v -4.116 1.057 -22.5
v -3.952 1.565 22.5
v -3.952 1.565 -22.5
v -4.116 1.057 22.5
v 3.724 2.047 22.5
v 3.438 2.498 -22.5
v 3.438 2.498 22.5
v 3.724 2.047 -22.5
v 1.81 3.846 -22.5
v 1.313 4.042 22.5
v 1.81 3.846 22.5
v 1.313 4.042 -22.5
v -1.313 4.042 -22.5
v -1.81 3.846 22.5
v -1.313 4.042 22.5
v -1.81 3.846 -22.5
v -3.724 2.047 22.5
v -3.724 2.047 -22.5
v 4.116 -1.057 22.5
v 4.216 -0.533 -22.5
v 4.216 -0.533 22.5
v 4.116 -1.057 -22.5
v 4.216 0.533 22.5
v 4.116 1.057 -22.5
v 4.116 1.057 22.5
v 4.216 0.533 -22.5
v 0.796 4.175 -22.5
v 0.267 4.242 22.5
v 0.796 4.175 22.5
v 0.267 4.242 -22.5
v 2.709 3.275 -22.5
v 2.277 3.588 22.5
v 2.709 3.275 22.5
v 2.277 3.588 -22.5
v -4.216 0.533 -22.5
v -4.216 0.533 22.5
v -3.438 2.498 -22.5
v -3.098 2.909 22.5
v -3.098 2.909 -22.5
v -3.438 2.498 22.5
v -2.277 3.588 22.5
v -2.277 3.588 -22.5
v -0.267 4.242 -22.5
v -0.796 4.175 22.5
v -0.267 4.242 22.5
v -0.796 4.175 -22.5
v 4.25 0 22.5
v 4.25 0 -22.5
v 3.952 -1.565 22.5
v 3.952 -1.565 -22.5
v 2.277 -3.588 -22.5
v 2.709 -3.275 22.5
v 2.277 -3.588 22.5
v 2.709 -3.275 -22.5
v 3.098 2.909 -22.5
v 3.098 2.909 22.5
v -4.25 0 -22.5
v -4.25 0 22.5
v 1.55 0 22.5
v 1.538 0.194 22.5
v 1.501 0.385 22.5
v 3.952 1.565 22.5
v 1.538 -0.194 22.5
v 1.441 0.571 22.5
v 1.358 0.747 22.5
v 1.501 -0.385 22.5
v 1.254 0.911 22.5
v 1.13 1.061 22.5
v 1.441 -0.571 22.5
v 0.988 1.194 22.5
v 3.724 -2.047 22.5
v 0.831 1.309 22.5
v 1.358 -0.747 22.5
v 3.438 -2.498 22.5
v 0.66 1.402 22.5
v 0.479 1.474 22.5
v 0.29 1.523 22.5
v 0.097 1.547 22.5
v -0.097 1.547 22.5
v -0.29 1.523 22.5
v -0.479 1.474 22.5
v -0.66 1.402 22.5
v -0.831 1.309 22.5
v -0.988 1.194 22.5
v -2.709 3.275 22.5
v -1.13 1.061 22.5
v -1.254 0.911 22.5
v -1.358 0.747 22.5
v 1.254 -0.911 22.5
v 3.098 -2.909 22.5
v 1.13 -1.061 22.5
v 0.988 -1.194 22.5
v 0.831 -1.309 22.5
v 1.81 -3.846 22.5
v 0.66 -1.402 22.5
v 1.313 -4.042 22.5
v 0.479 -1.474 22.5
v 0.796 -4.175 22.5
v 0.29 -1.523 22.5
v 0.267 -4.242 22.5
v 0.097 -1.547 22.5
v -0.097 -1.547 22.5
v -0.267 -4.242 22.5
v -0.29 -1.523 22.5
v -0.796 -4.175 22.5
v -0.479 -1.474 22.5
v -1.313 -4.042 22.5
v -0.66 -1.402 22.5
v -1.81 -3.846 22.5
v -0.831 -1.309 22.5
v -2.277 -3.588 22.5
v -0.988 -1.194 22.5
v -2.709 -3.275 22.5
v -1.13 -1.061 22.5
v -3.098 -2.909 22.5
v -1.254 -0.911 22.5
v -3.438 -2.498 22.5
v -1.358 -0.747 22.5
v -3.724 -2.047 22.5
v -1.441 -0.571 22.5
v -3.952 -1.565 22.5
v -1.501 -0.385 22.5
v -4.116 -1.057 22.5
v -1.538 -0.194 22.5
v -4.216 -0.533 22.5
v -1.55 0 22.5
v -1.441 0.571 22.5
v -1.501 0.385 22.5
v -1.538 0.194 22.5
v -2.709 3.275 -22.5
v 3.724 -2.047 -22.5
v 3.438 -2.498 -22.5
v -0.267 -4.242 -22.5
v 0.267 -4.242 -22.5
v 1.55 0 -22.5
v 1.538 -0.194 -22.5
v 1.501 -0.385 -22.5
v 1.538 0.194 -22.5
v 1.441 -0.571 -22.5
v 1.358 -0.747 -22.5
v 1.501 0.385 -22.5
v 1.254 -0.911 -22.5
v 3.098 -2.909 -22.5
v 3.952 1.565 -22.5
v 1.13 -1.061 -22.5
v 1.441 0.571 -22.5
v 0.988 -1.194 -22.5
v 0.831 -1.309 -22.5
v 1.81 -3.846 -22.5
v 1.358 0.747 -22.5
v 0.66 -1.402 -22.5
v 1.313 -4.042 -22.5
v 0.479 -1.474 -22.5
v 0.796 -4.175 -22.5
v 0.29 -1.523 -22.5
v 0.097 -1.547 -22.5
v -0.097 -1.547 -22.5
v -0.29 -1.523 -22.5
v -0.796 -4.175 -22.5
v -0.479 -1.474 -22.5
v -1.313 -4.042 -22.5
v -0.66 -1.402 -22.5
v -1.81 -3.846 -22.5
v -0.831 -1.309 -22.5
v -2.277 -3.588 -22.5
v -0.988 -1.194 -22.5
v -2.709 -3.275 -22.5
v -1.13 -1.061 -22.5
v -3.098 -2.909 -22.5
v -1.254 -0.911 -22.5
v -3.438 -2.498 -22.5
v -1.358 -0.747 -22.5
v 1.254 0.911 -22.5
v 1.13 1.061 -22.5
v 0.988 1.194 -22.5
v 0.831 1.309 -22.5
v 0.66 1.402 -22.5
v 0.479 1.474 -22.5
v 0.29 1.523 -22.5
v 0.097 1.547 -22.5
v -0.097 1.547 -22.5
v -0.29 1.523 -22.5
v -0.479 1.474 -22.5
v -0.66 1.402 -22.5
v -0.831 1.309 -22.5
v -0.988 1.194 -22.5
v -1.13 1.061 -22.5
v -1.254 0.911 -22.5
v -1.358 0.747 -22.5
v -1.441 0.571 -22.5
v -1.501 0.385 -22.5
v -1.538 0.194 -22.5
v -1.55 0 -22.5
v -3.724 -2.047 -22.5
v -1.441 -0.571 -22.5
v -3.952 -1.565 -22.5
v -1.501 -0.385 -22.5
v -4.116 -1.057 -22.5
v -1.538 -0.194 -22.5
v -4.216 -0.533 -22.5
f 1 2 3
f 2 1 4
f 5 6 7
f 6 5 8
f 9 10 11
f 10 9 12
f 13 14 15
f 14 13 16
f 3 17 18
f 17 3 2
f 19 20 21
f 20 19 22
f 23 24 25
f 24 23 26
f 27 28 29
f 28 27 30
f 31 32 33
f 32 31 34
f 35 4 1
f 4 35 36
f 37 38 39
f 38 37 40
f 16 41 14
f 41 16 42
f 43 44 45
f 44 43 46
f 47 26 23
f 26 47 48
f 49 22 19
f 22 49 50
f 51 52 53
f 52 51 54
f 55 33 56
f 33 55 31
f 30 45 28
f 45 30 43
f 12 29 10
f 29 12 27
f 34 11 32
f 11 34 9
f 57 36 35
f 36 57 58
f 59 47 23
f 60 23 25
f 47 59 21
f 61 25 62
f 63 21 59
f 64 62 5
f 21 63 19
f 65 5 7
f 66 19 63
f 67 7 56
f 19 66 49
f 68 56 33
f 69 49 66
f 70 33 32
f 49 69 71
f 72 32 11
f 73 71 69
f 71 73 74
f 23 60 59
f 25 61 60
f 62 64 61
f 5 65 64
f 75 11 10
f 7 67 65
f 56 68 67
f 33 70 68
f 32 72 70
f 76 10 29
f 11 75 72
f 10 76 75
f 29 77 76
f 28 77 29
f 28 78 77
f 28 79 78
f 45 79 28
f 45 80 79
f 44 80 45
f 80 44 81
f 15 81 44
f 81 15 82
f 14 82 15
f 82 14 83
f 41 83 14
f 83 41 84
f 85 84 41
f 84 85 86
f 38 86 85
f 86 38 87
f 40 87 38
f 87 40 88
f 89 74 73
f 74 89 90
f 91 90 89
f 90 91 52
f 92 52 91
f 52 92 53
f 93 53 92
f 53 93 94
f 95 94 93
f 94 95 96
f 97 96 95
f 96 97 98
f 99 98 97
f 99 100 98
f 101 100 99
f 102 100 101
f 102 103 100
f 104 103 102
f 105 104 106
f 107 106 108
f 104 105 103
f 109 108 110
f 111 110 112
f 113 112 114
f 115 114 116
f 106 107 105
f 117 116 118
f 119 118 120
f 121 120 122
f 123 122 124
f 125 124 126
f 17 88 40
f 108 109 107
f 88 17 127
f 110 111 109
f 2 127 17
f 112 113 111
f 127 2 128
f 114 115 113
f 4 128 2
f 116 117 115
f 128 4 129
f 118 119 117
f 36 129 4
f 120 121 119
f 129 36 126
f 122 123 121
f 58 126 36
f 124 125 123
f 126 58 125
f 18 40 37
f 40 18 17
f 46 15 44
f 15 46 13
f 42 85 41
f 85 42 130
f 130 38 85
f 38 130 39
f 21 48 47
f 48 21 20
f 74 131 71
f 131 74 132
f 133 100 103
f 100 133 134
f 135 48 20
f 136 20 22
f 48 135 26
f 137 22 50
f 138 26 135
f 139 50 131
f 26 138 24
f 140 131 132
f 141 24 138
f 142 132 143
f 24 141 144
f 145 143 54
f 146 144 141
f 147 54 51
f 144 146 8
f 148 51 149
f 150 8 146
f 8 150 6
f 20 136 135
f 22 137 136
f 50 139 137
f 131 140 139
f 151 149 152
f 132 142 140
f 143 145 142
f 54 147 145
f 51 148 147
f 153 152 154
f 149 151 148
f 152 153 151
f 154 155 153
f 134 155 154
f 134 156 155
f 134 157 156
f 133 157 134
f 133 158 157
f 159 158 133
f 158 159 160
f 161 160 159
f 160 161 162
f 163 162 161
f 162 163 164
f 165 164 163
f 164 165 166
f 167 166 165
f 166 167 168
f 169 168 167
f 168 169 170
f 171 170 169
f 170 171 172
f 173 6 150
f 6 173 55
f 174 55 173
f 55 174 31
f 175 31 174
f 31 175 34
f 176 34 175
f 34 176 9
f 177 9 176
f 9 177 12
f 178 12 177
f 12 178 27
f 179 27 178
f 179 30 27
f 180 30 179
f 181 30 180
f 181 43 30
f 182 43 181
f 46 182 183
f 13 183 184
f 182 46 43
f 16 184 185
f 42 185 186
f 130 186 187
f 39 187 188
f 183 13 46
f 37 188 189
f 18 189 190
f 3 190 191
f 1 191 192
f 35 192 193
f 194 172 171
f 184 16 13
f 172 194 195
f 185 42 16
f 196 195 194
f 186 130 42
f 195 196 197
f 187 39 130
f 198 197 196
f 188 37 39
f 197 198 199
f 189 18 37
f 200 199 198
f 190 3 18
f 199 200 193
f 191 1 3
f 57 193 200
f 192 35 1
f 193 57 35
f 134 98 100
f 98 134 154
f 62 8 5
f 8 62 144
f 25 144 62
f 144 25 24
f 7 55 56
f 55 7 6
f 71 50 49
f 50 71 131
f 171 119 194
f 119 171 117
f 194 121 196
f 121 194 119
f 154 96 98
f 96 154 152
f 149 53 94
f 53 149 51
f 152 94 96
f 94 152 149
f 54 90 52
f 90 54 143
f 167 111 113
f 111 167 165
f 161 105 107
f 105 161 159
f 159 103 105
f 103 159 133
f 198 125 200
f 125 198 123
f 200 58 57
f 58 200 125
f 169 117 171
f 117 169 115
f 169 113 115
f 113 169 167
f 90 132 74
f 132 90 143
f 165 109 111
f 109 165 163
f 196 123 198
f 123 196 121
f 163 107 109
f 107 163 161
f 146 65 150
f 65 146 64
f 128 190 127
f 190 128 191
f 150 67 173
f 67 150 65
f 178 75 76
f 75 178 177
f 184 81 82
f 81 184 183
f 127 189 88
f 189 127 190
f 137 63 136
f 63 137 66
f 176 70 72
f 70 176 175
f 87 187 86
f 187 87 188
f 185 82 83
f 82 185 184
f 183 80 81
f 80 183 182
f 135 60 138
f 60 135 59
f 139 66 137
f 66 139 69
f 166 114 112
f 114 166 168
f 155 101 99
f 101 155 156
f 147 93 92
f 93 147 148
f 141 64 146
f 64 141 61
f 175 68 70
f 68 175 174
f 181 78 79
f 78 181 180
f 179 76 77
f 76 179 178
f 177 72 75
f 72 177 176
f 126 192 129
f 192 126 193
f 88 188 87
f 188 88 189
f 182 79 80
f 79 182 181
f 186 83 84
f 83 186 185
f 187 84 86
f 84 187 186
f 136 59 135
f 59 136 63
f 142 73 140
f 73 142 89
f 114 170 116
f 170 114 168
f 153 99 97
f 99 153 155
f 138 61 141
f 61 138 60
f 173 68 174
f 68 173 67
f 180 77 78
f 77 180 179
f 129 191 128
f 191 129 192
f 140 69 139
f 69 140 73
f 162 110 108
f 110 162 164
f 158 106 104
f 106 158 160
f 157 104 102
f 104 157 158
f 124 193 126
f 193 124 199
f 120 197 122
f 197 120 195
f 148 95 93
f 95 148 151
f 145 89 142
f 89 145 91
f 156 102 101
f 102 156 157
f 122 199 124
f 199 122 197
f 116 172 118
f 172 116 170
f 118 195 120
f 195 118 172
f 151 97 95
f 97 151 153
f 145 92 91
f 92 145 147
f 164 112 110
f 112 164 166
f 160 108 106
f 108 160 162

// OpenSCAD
$fn = 50;


difference() {
	union() {
		translate(v = [0, 0, -22.5000000000]) {
			cylinder(h = 45, r = 4.2500000000);
		}
	}
	union() {
		translate(v = [0, 0, -100.0000000000]) {
			cylinder(h = 200, r = 1.5500000000);
		}
	}
}
